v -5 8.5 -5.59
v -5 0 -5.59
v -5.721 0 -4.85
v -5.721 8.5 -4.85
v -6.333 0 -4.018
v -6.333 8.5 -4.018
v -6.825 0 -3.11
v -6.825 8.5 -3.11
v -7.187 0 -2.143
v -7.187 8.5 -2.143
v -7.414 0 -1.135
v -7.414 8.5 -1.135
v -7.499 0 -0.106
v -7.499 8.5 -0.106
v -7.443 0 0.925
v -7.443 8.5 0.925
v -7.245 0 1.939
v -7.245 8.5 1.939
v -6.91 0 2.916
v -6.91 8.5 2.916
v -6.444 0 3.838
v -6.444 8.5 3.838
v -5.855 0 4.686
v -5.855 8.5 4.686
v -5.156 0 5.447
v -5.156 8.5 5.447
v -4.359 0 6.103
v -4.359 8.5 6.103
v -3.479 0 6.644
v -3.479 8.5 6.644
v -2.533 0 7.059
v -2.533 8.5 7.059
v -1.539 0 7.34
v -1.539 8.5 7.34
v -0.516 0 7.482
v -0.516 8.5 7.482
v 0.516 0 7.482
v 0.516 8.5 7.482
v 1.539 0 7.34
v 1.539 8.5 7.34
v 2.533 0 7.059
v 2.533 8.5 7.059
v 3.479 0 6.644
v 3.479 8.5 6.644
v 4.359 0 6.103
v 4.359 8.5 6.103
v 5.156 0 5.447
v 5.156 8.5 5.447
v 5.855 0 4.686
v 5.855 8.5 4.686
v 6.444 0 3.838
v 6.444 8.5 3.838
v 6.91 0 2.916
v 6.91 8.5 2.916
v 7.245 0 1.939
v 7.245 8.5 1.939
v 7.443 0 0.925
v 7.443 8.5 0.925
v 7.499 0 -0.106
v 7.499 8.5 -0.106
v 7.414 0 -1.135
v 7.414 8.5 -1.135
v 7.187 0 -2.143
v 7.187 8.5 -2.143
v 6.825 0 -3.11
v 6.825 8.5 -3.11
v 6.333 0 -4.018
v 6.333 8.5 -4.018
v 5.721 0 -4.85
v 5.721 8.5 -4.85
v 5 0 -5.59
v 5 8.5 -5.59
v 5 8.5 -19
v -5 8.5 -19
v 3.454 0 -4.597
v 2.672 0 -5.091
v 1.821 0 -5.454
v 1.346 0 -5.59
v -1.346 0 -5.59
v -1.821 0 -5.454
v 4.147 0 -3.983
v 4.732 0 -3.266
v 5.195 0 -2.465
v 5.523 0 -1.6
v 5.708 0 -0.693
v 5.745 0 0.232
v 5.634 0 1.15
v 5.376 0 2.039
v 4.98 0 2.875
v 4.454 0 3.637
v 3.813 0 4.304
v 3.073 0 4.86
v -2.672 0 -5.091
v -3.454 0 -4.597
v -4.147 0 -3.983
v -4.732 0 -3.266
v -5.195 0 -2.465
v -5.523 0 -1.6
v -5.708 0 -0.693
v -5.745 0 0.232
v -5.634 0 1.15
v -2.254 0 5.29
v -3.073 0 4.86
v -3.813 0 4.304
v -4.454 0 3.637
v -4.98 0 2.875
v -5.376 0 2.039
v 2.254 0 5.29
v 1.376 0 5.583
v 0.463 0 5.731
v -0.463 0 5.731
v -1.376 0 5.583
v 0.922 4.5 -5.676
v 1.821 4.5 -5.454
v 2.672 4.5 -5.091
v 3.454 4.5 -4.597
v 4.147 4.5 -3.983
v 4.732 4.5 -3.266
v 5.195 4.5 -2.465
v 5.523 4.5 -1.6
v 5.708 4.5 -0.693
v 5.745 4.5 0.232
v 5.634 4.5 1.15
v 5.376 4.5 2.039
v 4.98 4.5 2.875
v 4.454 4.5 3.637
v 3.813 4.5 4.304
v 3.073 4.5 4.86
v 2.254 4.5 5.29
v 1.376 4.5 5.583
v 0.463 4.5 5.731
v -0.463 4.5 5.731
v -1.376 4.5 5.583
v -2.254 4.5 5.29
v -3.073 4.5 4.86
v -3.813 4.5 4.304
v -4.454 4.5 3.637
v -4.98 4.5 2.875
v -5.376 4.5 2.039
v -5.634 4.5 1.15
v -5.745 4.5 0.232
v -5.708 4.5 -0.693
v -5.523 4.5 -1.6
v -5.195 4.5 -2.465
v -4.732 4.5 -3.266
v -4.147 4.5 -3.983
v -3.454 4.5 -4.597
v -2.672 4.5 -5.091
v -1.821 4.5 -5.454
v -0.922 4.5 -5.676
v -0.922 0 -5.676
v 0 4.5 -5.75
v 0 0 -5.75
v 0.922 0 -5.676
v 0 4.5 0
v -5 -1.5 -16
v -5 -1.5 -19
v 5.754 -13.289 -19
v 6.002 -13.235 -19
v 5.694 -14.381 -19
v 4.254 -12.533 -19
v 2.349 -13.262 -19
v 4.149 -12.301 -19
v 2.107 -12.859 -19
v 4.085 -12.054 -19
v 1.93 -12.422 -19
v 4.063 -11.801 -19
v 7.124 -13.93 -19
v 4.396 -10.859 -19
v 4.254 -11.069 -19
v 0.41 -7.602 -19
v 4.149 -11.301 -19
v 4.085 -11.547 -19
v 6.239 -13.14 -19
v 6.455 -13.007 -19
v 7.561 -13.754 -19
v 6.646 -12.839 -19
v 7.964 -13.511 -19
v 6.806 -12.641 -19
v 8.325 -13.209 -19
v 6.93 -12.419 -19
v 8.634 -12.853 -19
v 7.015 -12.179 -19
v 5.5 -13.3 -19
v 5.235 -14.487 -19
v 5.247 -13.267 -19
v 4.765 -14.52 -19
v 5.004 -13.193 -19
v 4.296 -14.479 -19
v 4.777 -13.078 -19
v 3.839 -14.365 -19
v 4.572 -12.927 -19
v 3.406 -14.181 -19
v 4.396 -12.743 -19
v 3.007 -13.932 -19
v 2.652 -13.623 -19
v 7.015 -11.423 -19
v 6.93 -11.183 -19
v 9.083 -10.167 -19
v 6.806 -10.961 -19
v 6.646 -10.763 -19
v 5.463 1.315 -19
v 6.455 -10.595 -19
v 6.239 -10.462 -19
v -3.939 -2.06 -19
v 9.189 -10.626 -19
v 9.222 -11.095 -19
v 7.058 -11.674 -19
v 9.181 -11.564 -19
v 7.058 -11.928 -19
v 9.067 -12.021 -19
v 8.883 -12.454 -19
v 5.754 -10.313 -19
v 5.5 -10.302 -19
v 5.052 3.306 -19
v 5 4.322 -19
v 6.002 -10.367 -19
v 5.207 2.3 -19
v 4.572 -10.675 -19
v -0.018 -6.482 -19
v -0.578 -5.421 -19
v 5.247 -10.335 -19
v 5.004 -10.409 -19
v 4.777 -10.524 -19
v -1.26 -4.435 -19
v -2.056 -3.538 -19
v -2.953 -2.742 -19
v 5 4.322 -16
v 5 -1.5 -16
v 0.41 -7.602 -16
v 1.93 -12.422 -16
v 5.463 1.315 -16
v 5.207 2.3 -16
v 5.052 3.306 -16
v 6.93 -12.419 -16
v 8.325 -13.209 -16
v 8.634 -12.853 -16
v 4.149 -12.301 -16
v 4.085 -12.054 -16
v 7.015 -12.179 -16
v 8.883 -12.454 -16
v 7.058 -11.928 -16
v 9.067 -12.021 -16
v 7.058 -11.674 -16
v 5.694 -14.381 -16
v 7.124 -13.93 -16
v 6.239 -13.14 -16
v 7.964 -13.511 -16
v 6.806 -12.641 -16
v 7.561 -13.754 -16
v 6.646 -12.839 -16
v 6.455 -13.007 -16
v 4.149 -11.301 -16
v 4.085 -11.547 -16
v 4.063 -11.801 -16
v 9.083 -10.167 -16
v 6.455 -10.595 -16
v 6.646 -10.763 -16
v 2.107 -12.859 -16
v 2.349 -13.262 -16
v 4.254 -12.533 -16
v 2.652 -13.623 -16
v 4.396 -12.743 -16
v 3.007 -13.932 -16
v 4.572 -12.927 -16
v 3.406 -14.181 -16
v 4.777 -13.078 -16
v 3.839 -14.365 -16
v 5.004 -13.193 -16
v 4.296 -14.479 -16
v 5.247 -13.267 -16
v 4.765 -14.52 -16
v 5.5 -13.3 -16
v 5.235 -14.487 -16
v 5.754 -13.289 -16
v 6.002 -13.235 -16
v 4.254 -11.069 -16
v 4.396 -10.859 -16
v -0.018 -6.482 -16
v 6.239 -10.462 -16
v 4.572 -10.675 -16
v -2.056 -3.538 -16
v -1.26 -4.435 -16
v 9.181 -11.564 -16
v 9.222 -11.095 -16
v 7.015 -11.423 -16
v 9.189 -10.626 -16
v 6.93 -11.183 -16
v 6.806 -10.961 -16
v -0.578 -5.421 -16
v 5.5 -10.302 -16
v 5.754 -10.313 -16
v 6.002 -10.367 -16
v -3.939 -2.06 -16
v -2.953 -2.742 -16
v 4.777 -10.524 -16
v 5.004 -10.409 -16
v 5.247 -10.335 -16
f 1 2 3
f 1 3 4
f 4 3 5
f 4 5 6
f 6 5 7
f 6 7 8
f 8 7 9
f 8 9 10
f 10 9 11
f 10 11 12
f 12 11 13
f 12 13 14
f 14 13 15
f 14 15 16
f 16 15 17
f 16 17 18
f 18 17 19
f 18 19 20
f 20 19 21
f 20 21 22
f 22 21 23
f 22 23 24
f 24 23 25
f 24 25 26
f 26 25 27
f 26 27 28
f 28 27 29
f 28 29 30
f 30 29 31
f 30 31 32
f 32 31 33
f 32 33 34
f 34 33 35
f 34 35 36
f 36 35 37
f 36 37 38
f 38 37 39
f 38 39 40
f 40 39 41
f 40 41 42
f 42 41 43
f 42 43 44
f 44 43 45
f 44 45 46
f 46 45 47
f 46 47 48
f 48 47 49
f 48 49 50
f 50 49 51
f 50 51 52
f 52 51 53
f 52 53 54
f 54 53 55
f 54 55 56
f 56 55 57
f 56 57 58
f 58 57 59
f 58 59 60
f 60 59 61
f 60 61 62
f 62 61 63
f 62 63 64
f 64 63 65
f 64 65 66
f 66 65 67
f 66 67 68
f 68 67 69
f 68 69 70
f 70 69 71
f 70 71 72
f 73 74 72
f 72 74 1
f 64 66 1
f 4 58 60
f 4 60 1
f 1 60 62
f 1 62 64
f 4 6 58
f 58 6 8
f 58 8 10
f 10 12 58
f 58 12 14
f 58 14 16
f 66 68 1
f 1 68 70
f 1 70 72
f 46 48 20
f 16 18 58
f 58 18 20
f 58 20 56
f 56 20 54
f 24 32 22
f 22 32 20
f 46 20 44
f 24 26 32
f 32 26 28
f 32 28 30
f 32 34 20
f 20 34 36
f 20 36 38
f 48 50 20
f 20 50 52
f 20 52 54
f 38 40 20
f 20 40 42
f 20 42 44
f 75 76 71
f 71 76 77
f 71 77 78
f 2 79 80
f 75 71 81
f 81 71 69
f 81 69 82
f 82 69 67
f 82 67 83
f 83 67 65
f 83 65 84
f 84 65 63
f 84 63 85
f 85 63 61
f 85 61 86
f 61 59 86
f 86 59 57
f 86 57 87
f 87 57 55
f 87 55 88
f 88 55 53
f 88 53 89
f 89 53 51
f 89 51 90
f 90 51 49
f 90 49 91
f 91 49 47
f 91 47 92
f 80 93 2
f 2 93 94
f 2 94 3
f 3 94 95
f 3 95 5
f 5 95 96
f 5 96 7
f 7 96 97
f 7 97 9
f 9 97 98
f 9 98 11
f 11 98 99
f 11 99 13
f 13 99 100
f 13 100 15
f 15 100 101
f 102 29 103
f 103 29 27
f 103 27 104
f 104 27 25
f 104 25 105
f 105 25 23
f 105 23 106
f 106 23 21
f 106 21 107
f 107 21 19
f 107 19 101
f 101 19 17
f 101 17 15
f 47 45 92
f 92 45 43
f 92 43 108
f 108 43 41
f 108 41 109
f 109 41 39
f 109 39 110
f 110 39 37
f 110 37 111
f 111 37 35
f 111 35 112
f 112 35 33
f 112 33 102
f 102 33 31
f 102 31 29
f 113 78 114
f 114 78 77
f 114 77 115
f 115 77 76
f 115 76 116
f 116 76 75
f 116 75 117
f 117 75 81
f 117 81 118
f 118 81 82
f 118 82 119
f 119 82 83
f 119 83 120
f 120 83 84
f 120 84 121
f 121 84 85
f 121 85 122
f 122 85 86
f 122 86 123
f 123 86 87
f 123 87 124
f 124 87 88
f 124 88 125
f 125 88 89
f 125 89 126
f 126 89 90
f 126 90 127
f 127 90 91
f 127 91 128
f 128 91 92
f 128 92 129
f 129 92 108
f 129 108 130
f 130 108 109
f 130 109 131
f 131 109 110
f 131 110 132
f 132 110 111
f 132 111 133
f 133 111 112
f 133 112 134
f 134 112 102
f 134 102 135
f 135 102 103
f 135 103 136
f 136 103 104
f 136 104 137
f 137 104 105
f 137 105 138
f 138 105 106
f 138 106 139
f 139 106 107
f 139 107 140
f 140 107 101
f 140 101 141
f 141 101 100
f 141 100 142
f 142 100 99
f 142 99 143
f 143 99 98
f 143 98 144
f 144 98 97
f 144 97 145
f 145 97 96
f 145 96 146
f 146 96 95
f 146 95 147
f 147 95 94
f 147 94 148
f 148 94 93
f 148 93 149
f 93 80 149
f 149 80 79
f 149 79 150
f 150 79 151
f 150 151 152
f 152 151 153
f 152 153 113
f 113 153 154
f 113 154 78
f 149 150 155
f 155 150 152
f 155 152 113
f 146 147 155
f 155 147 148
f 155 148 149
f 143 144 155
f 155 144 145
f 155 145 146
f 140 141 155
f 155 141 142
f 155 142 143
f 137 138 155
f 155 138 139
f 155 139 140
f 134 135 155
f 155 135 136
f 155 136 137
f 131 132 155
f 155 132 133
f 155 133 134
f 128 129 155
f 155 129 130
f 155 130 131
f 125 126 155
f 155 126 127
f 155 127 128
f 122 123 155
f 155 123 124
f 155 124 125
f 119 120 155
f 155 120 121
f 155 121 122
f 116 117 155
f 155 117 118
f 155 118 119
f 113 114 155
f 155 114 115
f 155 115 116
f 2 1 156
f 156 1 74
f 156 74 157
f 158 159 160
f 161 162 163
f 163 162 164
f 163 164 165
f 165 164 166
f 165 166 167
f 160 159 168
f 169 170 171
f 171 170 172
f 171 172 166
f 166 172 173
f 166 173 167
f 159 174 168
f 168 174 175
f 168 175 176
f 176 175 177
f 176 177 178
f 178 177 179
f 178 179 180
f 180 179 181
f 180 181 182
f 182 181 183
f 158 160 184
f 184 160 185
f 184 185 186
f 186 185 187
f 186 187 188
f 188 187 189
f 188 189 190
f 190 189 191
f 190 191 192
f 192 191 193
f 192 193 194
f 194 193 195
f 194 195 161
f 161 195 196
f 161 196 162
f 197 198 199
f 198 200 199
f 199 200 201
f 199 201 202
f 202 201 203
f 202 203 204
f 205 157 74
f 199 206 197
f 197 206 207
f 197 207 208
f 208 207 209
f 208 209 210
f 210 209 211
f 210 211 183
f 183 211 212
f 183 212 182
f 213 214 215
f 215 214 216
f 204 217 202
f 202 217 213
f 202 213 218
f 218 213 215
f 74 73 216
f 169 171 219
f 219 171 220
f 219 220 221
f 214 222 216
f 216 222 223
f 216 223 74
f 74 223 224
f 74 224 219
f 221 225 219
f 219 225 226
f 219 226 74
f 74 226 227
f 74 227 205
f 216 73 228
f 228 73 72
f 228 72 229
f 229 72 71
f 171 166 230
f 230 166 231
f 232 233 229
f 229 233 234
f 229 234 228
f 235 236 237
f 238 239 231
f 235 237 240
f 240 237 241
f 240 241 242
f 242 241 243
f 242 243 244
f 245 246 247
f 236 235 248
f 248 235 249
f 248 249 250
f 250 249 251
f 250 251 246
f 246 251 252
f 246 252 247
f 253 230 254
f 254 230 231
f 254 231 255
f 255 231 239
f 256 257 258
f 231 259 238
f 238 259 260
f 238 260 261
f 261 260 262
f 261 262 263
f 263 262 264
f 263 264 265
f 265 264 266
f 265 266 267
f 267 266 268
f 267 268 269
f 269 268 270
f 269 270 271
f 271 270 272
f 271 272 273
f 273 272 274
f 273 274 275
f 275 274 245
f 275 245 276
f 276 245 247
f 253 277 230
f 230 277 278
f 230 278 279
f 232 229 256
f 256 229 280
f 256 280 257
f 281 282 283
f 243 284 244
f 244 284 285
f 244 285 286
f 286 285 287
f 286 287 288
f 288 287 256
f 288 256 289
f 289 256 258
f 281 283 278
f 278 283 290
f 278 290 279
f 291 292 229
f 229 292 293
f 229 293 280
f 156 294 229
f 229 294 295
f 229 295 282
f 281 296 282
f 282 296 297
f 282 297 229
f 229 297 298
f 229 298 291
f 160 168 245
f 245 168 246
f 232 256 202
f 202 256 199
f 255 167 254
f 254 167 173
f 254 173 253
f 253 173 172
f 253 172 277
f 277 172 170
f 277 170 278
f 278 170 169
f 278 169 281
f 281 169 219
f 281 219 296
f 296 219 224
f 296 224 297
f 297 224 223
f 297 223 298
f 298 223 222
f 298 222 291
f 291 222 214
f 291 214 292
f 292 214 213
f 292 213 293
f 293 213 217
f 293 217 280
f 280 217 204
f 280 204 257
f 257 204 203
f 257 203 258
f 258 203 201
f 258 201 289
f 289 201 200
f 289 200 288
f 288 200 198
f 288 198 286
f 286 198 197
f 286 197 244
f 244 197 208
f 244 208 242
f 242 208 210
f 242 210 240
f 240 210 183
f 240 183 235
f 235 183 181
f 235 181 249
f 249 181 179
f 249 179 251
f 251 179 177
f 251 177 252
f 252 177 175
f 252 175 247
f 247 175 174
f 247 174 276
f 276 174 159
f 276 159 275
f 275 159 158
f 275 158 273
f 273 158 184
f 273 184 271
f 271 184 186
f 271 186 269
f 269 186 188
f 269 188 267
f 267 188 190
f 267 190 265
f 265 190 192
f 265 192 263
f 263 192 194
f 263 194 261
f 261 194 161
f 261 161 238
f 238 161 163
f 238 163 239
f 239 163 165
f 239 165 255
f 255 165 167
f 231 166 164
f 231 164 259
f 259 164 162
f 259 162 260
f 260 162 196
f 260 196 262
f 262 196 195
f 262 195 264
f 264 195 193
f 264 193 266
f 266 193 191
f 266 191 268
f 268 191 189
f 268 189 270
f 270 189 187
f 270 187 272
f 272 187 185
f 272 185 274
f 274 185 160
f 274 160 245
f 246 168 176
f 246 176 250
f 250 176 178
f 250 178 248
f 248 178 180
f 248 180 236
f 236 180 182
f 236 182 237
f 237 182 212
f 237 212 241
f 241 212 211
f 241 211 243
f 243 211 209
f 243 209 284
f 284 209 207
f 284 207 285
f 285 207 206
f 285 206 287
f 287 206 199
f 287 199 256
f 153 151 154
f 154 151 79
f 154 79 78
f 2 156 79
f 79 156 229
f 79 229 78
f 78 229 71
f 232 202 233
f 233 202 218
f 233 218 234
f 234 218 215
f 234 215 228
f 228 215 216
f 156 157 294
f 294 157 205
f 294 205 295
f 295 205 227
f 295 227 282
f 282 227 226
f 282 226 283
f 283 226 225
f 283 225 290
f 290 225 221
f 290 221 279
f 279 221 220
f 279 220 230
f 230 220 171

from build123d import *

# Parameters (mm, degrees)
ESBO_O2_R                = 7.5
RESSALTO_EXTRUS_O1_DEPTH = 8.5
ESBO_O3_R                = 5.75
CORTE_EXTRUS_O1_DEPTH    = 4.5
RESSALTO_EXTRUS_O2_START = -8.5
RESSALTO_EXTRUS_O2_DEPTH = 8.5
RESSALTO_EXTRUS_O3_DEPTH = 3
ESBO_O10_R               = 1.5
CORTE_EXTRUS_O2_DEPTH    = 33.179741965
FILETE2_R                = 3
RESSALTO_EXTRUS_O4_DEPTH = 10
FILETE4_R                = 10
FILETE5_R                = 10


with BuildPart() as part:
    # Esboço2 → Ressalto-extrusão1 (new body)
    with BuildSketch(Plane(origin=(0, 0, 0), x_dir=(1, 0, 0), z_dir=(0, 1, 0))):
        with Locations(Location((0, 0, 0), (0, 0, 270))):
            Circle(ESBO_O2_R)
    extrude(amount=RESSALTO_EXTRUS_O1_DEPTH)

    # Esboço3 → Corte-extrusão1 (cut)
    with BuildSketch(Plane.XZ):
        with Locations(Location((0, 0, 0), (0, 0, 270))):
            Circle(ESBO_O3_R)
    extrude(amount=-CORTE_EXTRUS_O1_DEPTH, mode=Mode.SUBTRACT)

    # Esboço4 → Ressalto-extrusão2 (add)
    with BuildSketch(Plane(origin=(0, 8.5, 0), x_dir=(1, 0, 0), z_dir=(0, 1, 0)).offset(RESSALTO_EXTRUS_O2_START)):
        with BuildLine():
            Line((5, 19), (-5, 19))
            Line((-5, 19), (-5, 5.590169944))
            ThreePointArc((-5, 5.590169944), (0, 7.5), (5, 5.590169944))
            Line((5, 5.590169944), (5, 19))
        make_face()
    extrude(amount=RESSALTO_EXTRUS_O2_DEPTH)

    # Esboço9 → Ressalto-extrusão3 (add)
    with BuildSketch(Plane(origin=(0, 0, -19), x_dir=(-1, 0, 0), z_dir=(0, 0, -1))):
        Polygon((-3.625309941, 7.143055834), (-9.985237601, -13.028057675), (-2.83236047, -15.283351171), (3.527567189, 4.887762338), (-0.053729842, 6), align=None)
    extrude(amount=-RESSALTO_EXTRUS_O3_DEPTH)

    # Esboço10 → Corte-extrusão2 (cut, through all)
    with BuildSketch(Plane(origin=(0, 0, -19), x_dir=(-1, 0, 0), z_dir=(0, 0, -1))):
        with Locations((-5.563236349, -11.800986501)):
            Circle(ESBO_O10_R)
    extrude(amount=-CORTE_EXTRUS_O2_DEPTH, mode=Mode.SUBTRACT)

    # Filete2
    filete2_edges = [part.edges().sort_by_distance(p)[0] for p in [
        (2.83236047, -15.283351171, -17.5),
        (9.985237601, -13.028057675, -17.5),
    ]]
    fillet(filete2_edges, radius=FILETE2_R)

    # Esboço12 → Ressalto-extrusão4 (add)
    with BuildSketch(Plane(origin=(5, 0, 0), x_dir=(0, 0, -1), z_dir=(1, 0, 0))):
        Polygon((16, -1.5), (5.590169944, 0), (16, 0), (19, 0), (19, -1.5), align=None)
    extrude(amount=-RESSALTO_EXTRUS_O4_DEPTH)

    # Filete4
    filete4_edges = [part.edges().sort_by_distance(p)[0] for p in [
        (5, 2.783095989, -17.5),
    ]]
    fillet(filete4_edges, radius=FILETE4_R)

    # Filete5
    # the kernel refuses this fillet: 10 mm, written as the material it adds along each edge
    with BuildSketch(Plane(origin=(-1.513513461, -1.5, -16), x_dir=(-1.0, -1.1428670067616555e-12, 0), z_dir=(0, 0, -1))) as filete5_piece_1_section:
        with BuildLine():
            CenterArc((7.613313945, -9.108748299), FILETE5_R, 114.373472149, 48.126527851)
            Line((-1.923855563, -6.101690304), (-2.114598953, -6.041549144))
            Line((-2.114598953, -6.041549144), (-0.19074339, 0.06014116))
            Line((-0.19074339, 0.06014116), (0, 0.2))
            ThreePointArc((0, 0.2), (1.74324327, 0.2), (3.403949991, 0.182174966))
            Line((3.403949991, 0.182174966), (3.486486539, 0))
        make_face()
    filete5_piece_1 = extrude(amount=3, mode=Mode.PRIVATE)
    filete5_piece_1 = split(filete5_piece_1, bisect_by=Plane(origin=(-1.609257645, -1.741830898, -17.678279033), z_dir=(0, -0.9897772969969367, 0.14262153536348515)), keep=Keep.TOP, mode=Mode.PRIVATE)
    add(filete5_piece_1)
    with BuildSketch(Plane(origin=(-1.513513461, -1.5, -16), x_dir=(-1.0, -1.1428670067616555e-12, 0), z_dir=(0, 0, -1))) as filete5_piece_2_section:
        with BuildLine():
            CenterArc((7.613313945, -9.108748299), FILETE5_R, 114.373472149, 48.126527851)
            Line((-1.923855563, -6.101690304), (-2.114598953, -6.041549144))
            Line((-2.114598953, -6.041549144), (-0.19074339, 0.06014116))
            Line((-0.19074339, 0.06014116), (0, 0.2))
            ThreePointArc((0, 0.2), (1.74324327, 0.2), (3.403949991, 0.182174966))
            Line((3.403949991, 0.182174966), (3.486486539, 0))
        make_face()
    filete5_piece_2 = extrude(amount=3, mode=Mode.PRIVATE)
    filete5_piece_2 = split(filete5_piece_2, bisect_by=Plane(origin=(-3.063320239, -1.747230158, -17.715749287), z_dir=(0, 0.9897772969969367, -0.14262153536348515)), keep=Keep.TOP, mode=Mode.PRIVATE)
    add(filete5_piece_2)
    with BuildSketch(Plane(origin=(-1.513513461, -1.5, -0.00550001), x_dir=(-1.0, -1.1395552717741066e-12, 0), z_dir=(0, 0, -1))) as filete5_piece_3_section:
        with BuildLine():
            CenterArc((7.613313945, -9.108748299), FILETE5_R, 114.373472149, 48.126527851)
            Line((-1.923855563, -6.101690304), (-2.114598953, -6.041549144))
            Line((-2.114598953, -6.041549144), (-0.19074339, 0.06014116))
            Line((-0.19074339, 0.06014116), (0, 0.2))
            ThreePointArc((0, 0.2), (1.74324327, 0.2), (3.403949991, 0.182174966))
            Line((3.403949991, 0.182174966), (3.486486539, 0))
        make_face()
    filete5_piece_3 = extrude(amount=18.99449999, mode=Mode.PRIVATE)
    filete5_piece_3 = split(filete5_piece_3, bisect_by=Plane(origin=(-3.132069725, -1.369378897, -16), z_dir=(0, 0, 1)), keep=Keep.TOP, mode=Mode.PRIVATE)
    filete5_piece_3 = split(filete5_piece_3, bisect_by=Plane(origin=(-3.132069725, -1.433360973, -15.537532703), z_dir=(0, 0.9897772969969367, -0.14262153536348515)), keep=Keep.TOP, mode=Mode.PRIVATE)
    add(filete5_piece_3)


solid = part.part
